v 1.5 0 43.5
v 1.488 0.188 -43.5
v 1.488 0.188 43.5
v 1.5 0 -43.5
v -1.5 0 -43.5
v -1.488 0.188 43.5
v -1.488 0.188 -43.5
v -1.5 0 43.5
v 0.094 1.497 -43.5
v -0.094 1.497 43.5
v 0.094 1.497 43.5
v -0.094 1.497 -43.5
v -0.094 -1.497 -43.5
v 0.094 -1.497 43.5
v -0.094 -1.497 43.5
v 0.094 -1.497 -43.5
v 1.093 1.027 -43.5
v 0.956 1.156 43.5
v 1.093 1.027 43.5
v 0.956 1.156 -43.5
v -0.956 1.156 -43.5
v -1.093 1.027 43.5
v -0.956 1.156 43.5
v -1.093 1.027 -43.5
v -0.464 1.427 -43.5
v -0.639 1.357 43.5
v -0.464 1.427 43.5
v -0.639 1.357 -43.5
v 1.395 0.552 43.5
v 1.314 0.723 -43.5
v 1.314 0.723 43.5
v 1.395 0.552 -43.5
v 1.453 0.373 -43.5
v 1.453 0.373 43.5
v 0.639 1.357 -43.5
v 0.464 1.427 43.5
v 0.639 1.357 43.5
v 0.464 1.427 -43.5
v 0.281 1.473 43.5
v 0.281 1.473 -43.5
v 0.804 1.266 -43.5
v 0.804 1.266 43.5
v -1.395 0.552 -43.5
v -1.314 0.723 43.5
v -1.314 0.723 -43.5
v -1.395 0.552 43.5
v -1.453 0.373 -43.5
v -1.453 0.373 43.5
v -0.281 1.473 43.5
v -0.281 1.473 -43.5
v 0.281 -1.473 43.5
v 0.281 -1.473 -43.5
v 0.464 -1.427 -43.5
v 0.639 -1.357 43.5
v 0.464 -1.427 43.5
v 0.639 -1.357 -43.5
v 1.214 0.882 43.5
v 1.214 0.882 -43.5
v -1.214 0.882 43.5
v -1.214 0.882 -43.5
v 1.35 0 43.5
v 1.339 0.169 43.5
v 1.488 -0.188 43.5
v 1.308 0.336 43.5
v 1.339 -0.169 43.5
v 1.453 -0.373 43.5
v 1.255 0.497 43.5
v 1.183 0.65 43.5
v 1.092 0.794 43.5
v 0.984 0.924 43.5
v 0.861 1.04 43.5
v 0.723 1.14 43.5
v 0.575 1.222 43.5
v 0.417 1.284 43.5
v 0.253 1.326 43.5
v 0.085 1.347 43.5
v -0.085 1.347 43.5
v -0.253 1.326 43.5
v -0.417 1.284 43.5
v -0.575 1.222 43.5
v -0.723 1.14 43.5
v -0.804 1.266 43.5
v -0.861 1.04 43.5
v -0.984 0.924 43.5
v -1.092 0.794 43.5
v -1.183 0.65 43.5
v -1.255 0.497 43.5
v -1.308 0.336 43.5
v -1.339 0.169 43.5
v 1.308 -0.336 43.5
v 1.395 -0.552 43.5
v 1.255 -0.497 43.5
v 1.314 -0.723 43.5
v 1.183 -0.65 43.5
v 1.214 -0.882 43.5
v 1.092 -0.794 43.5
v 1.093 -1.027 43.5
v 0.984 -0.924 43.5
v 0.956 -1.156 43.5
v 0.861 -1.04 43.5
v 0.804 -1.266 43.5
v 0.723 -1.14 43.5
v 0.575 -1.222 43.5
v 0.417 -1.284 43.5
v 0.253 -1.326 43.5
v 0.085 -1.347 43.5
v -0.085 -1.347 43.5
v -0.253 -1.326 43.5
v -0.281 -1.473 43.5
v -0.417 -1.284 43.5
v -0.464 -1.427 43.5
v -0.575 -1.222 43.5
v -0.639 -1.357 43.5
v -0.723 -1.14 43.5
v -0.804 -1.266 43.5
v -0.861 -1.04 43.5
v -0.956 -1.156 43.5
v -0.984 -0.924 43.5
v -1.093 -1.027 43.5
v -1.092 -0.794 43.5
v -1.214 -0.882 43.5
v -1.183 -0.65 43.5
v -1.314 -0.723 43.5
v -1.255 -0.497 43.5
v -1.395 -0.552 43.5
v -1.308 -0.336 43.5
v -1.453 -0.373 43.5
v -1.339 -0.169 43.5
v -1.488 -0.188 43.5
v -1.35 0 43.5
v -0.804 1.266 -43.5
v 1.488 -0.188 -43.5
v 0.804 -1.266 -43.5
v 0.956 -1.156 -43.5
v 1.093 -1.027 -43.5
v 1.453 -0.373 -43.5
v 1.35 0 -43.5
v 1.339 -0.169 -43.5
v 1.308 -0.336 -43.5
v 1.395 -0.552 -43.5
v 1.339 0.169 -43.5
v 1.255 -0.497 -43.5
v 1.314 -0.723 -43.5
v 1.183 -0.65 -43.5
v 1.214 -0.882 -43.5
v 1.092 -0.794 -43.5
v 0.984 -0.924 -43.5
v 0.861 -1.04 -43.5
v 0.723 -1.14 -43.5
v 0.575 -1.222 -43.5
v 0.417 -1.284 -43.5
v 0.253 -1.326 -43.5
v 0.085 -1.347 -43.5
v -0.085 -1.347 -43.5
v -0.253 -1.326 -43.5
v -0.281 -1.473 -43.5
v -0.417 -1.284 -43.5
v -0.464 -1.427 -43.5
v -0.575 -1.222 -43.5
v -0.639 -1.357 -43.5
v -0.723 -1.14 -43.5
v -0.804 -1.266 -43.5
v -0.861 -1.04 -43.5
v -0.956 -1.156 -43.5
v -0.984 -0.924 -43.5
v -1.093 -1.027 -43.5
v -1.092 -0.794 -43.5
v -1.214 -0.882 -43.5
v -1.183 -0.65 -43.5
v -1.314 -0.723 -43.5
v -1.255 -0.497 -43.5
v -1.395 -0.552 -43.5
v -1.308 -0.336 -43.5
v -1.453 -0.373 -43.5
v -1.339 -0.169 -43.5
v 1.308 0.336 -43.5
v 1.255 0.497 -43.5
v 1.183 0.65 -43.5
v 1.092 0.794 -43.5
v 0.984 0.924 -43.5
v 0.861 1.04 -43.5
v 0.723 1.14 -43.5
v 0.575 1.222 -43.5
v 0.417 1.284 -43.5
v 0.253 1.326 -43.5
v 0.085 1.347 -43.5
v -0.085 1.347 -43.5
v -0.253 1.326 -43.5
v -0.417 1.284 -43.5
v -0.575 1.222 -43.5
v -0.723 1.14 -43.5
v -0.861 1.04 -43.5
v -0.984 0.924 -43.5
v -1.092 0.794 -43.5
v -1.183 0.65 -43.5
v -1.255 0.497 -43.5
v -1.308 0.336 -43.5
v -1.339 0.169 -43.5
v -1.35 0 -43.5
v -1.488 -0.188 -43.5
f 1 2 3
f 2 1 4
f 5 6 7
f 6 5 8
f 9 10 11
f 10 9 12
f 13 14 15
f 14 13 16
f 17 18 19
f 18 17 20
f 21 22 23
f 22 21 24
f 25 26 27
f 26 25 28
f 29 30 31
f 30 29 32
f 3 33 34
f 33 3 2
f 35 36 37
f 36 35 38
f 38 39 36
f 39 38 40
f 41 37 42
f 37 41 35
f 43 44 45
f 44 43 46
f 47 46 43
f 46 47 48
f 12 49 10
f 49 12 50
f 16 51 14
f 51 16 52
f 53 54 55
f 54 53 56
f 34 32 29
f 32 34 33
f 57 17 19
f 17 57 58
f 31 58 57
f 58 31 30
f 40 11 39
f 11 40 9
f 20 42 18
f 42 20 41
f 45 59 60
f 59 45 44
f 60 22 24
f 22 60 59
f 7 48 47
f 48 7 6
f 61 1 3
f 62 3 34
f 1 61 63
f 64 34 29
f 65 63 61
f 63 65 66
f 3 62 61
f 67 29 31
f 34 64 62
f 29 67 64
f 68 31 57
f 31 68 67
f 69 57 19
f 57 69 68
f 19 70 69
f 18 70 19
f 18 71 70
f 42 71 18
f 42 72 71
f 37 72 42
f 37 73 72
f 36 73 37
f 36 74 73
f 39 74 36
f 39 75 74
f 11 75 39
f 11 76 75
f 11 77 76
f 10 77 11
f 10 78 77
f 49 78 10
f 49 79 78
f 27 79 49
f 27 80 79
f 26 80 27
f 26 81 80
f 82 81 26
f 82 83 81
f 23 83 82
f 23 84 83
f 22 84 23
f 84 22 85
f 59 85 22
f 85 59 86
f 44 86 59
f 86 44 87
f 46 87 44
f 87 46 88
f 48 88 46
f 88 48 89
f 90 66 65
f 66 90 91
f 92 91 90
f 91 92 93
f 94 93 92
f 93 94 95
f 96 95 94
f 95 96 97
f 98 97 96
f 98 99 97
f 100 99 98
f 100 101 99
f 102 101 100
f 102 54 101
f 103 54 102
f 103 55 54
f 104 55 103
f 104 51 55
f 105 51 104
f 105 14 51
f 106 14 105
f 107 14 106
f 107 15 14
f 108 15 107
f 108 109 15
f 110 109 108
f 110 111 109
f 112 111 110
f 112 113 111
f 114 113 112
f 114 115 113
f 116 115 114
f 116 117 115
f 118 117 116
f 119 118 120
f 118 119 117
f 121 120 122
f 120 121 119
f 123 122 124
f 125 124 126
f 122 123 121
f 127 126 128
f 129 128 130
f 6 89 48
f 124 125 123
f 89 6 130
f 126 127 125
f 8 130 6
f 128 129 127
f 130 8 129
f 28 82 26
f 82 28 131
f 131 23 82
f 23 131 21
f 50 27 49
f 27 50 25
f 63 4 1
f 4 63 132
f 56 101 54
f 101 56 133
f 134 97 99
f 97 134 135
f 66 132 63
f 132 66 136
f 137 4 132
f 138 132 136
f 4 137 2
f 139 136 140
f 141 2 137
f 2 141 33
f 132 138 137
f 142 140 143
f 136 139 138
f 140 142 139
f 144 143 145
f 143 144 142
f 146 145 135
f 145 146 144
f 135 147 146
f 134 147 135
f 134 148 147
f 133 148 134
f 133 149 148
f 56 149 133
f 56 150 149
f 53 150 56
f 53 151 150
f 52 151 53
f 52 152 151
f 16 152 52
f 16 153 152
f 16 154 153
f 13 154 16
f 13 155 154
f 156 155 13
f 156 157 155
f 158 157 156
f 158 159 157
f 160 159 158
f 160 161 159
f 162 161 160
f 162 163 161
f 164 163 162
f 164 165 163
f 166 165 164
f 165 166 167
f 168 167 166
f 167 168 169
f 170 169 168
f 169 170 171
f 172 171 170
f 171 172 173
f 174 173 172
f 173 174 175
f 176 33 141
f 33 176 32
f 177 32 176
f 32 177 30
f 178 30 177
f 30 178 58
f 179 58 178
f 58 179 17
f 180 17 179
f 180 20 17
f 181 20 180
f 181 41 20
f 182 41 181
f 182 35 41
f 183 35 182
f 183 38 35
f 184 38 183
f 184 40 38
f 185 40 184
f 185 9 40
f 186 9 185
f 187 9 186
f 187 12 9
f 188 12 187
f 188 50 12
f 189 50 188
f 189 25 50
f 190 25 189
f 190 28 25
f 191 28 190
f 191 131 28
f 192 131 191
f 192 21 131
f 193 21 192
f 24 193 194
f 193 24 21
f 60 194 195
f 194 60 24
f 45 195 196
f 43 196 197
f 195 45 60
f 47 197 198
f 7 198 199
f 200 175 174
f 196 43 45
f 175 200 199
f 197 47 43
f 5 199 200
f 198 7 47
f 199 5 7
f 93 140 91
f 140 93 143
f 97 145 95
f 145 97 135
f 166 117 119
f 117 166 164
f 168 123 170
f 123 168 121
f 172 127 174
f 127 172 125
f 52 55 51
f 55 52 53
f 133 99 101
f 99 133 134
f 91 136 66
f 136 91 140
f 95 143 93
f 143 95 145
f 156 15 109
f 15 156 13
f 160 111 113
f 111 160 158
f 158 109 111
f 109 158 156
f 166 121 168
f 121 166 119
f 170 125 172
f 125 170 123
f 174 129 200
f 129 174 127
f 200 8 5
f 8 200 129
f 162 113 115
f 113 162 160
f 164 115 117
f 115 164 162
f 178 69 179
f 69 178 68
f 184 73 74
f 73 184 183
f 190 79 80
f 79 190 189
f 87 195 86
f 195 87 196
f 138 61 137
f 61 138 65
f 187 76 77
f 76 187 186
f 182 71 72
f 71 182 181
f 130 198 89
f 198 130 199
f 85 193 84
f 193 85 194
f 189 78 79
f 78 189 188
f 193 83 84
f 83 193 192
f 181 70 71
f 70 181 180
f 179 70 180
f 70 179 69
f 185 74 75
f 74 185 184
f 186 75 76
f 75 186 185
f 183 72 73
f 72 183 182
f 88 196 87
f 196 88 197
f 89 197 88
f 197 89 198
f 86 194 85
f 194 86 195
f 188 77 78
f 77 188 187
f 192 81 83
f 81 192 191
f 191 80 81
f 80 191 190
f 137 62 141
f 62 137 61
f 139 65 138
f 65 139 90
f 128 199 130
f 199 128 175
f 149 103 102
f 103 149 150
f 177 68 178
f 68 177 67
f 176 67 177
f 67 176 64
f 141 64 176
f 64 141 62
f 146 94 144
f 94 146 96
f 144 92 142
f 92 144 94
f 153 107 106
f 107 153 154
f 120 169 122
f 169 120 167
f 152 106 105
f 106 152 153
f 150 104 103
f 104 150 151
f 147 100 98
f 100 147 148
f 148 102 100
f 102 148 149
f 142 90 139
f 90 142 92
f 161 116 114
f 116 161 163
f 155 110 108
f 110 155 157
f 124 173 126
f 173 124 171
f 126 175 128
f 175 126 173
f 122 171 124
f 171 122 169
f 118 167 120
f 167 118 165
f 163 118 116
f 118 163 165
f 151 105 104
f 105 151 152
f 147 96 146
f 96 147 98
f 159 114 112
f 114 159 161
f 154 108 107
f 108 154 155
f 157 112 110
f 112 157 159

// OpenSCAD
$fn = 50;


difference() {
	union() {
		translate(v = [0, 0, -43.5000000000]) {
			cylinder(h = 87, r = 1.5000000000);
		}
	}
	union() {
		translate(v = [0, 0, -100.0000000000]) {
			cylinder(h = 200, r = 1.3500000000);
		}
	}
}
